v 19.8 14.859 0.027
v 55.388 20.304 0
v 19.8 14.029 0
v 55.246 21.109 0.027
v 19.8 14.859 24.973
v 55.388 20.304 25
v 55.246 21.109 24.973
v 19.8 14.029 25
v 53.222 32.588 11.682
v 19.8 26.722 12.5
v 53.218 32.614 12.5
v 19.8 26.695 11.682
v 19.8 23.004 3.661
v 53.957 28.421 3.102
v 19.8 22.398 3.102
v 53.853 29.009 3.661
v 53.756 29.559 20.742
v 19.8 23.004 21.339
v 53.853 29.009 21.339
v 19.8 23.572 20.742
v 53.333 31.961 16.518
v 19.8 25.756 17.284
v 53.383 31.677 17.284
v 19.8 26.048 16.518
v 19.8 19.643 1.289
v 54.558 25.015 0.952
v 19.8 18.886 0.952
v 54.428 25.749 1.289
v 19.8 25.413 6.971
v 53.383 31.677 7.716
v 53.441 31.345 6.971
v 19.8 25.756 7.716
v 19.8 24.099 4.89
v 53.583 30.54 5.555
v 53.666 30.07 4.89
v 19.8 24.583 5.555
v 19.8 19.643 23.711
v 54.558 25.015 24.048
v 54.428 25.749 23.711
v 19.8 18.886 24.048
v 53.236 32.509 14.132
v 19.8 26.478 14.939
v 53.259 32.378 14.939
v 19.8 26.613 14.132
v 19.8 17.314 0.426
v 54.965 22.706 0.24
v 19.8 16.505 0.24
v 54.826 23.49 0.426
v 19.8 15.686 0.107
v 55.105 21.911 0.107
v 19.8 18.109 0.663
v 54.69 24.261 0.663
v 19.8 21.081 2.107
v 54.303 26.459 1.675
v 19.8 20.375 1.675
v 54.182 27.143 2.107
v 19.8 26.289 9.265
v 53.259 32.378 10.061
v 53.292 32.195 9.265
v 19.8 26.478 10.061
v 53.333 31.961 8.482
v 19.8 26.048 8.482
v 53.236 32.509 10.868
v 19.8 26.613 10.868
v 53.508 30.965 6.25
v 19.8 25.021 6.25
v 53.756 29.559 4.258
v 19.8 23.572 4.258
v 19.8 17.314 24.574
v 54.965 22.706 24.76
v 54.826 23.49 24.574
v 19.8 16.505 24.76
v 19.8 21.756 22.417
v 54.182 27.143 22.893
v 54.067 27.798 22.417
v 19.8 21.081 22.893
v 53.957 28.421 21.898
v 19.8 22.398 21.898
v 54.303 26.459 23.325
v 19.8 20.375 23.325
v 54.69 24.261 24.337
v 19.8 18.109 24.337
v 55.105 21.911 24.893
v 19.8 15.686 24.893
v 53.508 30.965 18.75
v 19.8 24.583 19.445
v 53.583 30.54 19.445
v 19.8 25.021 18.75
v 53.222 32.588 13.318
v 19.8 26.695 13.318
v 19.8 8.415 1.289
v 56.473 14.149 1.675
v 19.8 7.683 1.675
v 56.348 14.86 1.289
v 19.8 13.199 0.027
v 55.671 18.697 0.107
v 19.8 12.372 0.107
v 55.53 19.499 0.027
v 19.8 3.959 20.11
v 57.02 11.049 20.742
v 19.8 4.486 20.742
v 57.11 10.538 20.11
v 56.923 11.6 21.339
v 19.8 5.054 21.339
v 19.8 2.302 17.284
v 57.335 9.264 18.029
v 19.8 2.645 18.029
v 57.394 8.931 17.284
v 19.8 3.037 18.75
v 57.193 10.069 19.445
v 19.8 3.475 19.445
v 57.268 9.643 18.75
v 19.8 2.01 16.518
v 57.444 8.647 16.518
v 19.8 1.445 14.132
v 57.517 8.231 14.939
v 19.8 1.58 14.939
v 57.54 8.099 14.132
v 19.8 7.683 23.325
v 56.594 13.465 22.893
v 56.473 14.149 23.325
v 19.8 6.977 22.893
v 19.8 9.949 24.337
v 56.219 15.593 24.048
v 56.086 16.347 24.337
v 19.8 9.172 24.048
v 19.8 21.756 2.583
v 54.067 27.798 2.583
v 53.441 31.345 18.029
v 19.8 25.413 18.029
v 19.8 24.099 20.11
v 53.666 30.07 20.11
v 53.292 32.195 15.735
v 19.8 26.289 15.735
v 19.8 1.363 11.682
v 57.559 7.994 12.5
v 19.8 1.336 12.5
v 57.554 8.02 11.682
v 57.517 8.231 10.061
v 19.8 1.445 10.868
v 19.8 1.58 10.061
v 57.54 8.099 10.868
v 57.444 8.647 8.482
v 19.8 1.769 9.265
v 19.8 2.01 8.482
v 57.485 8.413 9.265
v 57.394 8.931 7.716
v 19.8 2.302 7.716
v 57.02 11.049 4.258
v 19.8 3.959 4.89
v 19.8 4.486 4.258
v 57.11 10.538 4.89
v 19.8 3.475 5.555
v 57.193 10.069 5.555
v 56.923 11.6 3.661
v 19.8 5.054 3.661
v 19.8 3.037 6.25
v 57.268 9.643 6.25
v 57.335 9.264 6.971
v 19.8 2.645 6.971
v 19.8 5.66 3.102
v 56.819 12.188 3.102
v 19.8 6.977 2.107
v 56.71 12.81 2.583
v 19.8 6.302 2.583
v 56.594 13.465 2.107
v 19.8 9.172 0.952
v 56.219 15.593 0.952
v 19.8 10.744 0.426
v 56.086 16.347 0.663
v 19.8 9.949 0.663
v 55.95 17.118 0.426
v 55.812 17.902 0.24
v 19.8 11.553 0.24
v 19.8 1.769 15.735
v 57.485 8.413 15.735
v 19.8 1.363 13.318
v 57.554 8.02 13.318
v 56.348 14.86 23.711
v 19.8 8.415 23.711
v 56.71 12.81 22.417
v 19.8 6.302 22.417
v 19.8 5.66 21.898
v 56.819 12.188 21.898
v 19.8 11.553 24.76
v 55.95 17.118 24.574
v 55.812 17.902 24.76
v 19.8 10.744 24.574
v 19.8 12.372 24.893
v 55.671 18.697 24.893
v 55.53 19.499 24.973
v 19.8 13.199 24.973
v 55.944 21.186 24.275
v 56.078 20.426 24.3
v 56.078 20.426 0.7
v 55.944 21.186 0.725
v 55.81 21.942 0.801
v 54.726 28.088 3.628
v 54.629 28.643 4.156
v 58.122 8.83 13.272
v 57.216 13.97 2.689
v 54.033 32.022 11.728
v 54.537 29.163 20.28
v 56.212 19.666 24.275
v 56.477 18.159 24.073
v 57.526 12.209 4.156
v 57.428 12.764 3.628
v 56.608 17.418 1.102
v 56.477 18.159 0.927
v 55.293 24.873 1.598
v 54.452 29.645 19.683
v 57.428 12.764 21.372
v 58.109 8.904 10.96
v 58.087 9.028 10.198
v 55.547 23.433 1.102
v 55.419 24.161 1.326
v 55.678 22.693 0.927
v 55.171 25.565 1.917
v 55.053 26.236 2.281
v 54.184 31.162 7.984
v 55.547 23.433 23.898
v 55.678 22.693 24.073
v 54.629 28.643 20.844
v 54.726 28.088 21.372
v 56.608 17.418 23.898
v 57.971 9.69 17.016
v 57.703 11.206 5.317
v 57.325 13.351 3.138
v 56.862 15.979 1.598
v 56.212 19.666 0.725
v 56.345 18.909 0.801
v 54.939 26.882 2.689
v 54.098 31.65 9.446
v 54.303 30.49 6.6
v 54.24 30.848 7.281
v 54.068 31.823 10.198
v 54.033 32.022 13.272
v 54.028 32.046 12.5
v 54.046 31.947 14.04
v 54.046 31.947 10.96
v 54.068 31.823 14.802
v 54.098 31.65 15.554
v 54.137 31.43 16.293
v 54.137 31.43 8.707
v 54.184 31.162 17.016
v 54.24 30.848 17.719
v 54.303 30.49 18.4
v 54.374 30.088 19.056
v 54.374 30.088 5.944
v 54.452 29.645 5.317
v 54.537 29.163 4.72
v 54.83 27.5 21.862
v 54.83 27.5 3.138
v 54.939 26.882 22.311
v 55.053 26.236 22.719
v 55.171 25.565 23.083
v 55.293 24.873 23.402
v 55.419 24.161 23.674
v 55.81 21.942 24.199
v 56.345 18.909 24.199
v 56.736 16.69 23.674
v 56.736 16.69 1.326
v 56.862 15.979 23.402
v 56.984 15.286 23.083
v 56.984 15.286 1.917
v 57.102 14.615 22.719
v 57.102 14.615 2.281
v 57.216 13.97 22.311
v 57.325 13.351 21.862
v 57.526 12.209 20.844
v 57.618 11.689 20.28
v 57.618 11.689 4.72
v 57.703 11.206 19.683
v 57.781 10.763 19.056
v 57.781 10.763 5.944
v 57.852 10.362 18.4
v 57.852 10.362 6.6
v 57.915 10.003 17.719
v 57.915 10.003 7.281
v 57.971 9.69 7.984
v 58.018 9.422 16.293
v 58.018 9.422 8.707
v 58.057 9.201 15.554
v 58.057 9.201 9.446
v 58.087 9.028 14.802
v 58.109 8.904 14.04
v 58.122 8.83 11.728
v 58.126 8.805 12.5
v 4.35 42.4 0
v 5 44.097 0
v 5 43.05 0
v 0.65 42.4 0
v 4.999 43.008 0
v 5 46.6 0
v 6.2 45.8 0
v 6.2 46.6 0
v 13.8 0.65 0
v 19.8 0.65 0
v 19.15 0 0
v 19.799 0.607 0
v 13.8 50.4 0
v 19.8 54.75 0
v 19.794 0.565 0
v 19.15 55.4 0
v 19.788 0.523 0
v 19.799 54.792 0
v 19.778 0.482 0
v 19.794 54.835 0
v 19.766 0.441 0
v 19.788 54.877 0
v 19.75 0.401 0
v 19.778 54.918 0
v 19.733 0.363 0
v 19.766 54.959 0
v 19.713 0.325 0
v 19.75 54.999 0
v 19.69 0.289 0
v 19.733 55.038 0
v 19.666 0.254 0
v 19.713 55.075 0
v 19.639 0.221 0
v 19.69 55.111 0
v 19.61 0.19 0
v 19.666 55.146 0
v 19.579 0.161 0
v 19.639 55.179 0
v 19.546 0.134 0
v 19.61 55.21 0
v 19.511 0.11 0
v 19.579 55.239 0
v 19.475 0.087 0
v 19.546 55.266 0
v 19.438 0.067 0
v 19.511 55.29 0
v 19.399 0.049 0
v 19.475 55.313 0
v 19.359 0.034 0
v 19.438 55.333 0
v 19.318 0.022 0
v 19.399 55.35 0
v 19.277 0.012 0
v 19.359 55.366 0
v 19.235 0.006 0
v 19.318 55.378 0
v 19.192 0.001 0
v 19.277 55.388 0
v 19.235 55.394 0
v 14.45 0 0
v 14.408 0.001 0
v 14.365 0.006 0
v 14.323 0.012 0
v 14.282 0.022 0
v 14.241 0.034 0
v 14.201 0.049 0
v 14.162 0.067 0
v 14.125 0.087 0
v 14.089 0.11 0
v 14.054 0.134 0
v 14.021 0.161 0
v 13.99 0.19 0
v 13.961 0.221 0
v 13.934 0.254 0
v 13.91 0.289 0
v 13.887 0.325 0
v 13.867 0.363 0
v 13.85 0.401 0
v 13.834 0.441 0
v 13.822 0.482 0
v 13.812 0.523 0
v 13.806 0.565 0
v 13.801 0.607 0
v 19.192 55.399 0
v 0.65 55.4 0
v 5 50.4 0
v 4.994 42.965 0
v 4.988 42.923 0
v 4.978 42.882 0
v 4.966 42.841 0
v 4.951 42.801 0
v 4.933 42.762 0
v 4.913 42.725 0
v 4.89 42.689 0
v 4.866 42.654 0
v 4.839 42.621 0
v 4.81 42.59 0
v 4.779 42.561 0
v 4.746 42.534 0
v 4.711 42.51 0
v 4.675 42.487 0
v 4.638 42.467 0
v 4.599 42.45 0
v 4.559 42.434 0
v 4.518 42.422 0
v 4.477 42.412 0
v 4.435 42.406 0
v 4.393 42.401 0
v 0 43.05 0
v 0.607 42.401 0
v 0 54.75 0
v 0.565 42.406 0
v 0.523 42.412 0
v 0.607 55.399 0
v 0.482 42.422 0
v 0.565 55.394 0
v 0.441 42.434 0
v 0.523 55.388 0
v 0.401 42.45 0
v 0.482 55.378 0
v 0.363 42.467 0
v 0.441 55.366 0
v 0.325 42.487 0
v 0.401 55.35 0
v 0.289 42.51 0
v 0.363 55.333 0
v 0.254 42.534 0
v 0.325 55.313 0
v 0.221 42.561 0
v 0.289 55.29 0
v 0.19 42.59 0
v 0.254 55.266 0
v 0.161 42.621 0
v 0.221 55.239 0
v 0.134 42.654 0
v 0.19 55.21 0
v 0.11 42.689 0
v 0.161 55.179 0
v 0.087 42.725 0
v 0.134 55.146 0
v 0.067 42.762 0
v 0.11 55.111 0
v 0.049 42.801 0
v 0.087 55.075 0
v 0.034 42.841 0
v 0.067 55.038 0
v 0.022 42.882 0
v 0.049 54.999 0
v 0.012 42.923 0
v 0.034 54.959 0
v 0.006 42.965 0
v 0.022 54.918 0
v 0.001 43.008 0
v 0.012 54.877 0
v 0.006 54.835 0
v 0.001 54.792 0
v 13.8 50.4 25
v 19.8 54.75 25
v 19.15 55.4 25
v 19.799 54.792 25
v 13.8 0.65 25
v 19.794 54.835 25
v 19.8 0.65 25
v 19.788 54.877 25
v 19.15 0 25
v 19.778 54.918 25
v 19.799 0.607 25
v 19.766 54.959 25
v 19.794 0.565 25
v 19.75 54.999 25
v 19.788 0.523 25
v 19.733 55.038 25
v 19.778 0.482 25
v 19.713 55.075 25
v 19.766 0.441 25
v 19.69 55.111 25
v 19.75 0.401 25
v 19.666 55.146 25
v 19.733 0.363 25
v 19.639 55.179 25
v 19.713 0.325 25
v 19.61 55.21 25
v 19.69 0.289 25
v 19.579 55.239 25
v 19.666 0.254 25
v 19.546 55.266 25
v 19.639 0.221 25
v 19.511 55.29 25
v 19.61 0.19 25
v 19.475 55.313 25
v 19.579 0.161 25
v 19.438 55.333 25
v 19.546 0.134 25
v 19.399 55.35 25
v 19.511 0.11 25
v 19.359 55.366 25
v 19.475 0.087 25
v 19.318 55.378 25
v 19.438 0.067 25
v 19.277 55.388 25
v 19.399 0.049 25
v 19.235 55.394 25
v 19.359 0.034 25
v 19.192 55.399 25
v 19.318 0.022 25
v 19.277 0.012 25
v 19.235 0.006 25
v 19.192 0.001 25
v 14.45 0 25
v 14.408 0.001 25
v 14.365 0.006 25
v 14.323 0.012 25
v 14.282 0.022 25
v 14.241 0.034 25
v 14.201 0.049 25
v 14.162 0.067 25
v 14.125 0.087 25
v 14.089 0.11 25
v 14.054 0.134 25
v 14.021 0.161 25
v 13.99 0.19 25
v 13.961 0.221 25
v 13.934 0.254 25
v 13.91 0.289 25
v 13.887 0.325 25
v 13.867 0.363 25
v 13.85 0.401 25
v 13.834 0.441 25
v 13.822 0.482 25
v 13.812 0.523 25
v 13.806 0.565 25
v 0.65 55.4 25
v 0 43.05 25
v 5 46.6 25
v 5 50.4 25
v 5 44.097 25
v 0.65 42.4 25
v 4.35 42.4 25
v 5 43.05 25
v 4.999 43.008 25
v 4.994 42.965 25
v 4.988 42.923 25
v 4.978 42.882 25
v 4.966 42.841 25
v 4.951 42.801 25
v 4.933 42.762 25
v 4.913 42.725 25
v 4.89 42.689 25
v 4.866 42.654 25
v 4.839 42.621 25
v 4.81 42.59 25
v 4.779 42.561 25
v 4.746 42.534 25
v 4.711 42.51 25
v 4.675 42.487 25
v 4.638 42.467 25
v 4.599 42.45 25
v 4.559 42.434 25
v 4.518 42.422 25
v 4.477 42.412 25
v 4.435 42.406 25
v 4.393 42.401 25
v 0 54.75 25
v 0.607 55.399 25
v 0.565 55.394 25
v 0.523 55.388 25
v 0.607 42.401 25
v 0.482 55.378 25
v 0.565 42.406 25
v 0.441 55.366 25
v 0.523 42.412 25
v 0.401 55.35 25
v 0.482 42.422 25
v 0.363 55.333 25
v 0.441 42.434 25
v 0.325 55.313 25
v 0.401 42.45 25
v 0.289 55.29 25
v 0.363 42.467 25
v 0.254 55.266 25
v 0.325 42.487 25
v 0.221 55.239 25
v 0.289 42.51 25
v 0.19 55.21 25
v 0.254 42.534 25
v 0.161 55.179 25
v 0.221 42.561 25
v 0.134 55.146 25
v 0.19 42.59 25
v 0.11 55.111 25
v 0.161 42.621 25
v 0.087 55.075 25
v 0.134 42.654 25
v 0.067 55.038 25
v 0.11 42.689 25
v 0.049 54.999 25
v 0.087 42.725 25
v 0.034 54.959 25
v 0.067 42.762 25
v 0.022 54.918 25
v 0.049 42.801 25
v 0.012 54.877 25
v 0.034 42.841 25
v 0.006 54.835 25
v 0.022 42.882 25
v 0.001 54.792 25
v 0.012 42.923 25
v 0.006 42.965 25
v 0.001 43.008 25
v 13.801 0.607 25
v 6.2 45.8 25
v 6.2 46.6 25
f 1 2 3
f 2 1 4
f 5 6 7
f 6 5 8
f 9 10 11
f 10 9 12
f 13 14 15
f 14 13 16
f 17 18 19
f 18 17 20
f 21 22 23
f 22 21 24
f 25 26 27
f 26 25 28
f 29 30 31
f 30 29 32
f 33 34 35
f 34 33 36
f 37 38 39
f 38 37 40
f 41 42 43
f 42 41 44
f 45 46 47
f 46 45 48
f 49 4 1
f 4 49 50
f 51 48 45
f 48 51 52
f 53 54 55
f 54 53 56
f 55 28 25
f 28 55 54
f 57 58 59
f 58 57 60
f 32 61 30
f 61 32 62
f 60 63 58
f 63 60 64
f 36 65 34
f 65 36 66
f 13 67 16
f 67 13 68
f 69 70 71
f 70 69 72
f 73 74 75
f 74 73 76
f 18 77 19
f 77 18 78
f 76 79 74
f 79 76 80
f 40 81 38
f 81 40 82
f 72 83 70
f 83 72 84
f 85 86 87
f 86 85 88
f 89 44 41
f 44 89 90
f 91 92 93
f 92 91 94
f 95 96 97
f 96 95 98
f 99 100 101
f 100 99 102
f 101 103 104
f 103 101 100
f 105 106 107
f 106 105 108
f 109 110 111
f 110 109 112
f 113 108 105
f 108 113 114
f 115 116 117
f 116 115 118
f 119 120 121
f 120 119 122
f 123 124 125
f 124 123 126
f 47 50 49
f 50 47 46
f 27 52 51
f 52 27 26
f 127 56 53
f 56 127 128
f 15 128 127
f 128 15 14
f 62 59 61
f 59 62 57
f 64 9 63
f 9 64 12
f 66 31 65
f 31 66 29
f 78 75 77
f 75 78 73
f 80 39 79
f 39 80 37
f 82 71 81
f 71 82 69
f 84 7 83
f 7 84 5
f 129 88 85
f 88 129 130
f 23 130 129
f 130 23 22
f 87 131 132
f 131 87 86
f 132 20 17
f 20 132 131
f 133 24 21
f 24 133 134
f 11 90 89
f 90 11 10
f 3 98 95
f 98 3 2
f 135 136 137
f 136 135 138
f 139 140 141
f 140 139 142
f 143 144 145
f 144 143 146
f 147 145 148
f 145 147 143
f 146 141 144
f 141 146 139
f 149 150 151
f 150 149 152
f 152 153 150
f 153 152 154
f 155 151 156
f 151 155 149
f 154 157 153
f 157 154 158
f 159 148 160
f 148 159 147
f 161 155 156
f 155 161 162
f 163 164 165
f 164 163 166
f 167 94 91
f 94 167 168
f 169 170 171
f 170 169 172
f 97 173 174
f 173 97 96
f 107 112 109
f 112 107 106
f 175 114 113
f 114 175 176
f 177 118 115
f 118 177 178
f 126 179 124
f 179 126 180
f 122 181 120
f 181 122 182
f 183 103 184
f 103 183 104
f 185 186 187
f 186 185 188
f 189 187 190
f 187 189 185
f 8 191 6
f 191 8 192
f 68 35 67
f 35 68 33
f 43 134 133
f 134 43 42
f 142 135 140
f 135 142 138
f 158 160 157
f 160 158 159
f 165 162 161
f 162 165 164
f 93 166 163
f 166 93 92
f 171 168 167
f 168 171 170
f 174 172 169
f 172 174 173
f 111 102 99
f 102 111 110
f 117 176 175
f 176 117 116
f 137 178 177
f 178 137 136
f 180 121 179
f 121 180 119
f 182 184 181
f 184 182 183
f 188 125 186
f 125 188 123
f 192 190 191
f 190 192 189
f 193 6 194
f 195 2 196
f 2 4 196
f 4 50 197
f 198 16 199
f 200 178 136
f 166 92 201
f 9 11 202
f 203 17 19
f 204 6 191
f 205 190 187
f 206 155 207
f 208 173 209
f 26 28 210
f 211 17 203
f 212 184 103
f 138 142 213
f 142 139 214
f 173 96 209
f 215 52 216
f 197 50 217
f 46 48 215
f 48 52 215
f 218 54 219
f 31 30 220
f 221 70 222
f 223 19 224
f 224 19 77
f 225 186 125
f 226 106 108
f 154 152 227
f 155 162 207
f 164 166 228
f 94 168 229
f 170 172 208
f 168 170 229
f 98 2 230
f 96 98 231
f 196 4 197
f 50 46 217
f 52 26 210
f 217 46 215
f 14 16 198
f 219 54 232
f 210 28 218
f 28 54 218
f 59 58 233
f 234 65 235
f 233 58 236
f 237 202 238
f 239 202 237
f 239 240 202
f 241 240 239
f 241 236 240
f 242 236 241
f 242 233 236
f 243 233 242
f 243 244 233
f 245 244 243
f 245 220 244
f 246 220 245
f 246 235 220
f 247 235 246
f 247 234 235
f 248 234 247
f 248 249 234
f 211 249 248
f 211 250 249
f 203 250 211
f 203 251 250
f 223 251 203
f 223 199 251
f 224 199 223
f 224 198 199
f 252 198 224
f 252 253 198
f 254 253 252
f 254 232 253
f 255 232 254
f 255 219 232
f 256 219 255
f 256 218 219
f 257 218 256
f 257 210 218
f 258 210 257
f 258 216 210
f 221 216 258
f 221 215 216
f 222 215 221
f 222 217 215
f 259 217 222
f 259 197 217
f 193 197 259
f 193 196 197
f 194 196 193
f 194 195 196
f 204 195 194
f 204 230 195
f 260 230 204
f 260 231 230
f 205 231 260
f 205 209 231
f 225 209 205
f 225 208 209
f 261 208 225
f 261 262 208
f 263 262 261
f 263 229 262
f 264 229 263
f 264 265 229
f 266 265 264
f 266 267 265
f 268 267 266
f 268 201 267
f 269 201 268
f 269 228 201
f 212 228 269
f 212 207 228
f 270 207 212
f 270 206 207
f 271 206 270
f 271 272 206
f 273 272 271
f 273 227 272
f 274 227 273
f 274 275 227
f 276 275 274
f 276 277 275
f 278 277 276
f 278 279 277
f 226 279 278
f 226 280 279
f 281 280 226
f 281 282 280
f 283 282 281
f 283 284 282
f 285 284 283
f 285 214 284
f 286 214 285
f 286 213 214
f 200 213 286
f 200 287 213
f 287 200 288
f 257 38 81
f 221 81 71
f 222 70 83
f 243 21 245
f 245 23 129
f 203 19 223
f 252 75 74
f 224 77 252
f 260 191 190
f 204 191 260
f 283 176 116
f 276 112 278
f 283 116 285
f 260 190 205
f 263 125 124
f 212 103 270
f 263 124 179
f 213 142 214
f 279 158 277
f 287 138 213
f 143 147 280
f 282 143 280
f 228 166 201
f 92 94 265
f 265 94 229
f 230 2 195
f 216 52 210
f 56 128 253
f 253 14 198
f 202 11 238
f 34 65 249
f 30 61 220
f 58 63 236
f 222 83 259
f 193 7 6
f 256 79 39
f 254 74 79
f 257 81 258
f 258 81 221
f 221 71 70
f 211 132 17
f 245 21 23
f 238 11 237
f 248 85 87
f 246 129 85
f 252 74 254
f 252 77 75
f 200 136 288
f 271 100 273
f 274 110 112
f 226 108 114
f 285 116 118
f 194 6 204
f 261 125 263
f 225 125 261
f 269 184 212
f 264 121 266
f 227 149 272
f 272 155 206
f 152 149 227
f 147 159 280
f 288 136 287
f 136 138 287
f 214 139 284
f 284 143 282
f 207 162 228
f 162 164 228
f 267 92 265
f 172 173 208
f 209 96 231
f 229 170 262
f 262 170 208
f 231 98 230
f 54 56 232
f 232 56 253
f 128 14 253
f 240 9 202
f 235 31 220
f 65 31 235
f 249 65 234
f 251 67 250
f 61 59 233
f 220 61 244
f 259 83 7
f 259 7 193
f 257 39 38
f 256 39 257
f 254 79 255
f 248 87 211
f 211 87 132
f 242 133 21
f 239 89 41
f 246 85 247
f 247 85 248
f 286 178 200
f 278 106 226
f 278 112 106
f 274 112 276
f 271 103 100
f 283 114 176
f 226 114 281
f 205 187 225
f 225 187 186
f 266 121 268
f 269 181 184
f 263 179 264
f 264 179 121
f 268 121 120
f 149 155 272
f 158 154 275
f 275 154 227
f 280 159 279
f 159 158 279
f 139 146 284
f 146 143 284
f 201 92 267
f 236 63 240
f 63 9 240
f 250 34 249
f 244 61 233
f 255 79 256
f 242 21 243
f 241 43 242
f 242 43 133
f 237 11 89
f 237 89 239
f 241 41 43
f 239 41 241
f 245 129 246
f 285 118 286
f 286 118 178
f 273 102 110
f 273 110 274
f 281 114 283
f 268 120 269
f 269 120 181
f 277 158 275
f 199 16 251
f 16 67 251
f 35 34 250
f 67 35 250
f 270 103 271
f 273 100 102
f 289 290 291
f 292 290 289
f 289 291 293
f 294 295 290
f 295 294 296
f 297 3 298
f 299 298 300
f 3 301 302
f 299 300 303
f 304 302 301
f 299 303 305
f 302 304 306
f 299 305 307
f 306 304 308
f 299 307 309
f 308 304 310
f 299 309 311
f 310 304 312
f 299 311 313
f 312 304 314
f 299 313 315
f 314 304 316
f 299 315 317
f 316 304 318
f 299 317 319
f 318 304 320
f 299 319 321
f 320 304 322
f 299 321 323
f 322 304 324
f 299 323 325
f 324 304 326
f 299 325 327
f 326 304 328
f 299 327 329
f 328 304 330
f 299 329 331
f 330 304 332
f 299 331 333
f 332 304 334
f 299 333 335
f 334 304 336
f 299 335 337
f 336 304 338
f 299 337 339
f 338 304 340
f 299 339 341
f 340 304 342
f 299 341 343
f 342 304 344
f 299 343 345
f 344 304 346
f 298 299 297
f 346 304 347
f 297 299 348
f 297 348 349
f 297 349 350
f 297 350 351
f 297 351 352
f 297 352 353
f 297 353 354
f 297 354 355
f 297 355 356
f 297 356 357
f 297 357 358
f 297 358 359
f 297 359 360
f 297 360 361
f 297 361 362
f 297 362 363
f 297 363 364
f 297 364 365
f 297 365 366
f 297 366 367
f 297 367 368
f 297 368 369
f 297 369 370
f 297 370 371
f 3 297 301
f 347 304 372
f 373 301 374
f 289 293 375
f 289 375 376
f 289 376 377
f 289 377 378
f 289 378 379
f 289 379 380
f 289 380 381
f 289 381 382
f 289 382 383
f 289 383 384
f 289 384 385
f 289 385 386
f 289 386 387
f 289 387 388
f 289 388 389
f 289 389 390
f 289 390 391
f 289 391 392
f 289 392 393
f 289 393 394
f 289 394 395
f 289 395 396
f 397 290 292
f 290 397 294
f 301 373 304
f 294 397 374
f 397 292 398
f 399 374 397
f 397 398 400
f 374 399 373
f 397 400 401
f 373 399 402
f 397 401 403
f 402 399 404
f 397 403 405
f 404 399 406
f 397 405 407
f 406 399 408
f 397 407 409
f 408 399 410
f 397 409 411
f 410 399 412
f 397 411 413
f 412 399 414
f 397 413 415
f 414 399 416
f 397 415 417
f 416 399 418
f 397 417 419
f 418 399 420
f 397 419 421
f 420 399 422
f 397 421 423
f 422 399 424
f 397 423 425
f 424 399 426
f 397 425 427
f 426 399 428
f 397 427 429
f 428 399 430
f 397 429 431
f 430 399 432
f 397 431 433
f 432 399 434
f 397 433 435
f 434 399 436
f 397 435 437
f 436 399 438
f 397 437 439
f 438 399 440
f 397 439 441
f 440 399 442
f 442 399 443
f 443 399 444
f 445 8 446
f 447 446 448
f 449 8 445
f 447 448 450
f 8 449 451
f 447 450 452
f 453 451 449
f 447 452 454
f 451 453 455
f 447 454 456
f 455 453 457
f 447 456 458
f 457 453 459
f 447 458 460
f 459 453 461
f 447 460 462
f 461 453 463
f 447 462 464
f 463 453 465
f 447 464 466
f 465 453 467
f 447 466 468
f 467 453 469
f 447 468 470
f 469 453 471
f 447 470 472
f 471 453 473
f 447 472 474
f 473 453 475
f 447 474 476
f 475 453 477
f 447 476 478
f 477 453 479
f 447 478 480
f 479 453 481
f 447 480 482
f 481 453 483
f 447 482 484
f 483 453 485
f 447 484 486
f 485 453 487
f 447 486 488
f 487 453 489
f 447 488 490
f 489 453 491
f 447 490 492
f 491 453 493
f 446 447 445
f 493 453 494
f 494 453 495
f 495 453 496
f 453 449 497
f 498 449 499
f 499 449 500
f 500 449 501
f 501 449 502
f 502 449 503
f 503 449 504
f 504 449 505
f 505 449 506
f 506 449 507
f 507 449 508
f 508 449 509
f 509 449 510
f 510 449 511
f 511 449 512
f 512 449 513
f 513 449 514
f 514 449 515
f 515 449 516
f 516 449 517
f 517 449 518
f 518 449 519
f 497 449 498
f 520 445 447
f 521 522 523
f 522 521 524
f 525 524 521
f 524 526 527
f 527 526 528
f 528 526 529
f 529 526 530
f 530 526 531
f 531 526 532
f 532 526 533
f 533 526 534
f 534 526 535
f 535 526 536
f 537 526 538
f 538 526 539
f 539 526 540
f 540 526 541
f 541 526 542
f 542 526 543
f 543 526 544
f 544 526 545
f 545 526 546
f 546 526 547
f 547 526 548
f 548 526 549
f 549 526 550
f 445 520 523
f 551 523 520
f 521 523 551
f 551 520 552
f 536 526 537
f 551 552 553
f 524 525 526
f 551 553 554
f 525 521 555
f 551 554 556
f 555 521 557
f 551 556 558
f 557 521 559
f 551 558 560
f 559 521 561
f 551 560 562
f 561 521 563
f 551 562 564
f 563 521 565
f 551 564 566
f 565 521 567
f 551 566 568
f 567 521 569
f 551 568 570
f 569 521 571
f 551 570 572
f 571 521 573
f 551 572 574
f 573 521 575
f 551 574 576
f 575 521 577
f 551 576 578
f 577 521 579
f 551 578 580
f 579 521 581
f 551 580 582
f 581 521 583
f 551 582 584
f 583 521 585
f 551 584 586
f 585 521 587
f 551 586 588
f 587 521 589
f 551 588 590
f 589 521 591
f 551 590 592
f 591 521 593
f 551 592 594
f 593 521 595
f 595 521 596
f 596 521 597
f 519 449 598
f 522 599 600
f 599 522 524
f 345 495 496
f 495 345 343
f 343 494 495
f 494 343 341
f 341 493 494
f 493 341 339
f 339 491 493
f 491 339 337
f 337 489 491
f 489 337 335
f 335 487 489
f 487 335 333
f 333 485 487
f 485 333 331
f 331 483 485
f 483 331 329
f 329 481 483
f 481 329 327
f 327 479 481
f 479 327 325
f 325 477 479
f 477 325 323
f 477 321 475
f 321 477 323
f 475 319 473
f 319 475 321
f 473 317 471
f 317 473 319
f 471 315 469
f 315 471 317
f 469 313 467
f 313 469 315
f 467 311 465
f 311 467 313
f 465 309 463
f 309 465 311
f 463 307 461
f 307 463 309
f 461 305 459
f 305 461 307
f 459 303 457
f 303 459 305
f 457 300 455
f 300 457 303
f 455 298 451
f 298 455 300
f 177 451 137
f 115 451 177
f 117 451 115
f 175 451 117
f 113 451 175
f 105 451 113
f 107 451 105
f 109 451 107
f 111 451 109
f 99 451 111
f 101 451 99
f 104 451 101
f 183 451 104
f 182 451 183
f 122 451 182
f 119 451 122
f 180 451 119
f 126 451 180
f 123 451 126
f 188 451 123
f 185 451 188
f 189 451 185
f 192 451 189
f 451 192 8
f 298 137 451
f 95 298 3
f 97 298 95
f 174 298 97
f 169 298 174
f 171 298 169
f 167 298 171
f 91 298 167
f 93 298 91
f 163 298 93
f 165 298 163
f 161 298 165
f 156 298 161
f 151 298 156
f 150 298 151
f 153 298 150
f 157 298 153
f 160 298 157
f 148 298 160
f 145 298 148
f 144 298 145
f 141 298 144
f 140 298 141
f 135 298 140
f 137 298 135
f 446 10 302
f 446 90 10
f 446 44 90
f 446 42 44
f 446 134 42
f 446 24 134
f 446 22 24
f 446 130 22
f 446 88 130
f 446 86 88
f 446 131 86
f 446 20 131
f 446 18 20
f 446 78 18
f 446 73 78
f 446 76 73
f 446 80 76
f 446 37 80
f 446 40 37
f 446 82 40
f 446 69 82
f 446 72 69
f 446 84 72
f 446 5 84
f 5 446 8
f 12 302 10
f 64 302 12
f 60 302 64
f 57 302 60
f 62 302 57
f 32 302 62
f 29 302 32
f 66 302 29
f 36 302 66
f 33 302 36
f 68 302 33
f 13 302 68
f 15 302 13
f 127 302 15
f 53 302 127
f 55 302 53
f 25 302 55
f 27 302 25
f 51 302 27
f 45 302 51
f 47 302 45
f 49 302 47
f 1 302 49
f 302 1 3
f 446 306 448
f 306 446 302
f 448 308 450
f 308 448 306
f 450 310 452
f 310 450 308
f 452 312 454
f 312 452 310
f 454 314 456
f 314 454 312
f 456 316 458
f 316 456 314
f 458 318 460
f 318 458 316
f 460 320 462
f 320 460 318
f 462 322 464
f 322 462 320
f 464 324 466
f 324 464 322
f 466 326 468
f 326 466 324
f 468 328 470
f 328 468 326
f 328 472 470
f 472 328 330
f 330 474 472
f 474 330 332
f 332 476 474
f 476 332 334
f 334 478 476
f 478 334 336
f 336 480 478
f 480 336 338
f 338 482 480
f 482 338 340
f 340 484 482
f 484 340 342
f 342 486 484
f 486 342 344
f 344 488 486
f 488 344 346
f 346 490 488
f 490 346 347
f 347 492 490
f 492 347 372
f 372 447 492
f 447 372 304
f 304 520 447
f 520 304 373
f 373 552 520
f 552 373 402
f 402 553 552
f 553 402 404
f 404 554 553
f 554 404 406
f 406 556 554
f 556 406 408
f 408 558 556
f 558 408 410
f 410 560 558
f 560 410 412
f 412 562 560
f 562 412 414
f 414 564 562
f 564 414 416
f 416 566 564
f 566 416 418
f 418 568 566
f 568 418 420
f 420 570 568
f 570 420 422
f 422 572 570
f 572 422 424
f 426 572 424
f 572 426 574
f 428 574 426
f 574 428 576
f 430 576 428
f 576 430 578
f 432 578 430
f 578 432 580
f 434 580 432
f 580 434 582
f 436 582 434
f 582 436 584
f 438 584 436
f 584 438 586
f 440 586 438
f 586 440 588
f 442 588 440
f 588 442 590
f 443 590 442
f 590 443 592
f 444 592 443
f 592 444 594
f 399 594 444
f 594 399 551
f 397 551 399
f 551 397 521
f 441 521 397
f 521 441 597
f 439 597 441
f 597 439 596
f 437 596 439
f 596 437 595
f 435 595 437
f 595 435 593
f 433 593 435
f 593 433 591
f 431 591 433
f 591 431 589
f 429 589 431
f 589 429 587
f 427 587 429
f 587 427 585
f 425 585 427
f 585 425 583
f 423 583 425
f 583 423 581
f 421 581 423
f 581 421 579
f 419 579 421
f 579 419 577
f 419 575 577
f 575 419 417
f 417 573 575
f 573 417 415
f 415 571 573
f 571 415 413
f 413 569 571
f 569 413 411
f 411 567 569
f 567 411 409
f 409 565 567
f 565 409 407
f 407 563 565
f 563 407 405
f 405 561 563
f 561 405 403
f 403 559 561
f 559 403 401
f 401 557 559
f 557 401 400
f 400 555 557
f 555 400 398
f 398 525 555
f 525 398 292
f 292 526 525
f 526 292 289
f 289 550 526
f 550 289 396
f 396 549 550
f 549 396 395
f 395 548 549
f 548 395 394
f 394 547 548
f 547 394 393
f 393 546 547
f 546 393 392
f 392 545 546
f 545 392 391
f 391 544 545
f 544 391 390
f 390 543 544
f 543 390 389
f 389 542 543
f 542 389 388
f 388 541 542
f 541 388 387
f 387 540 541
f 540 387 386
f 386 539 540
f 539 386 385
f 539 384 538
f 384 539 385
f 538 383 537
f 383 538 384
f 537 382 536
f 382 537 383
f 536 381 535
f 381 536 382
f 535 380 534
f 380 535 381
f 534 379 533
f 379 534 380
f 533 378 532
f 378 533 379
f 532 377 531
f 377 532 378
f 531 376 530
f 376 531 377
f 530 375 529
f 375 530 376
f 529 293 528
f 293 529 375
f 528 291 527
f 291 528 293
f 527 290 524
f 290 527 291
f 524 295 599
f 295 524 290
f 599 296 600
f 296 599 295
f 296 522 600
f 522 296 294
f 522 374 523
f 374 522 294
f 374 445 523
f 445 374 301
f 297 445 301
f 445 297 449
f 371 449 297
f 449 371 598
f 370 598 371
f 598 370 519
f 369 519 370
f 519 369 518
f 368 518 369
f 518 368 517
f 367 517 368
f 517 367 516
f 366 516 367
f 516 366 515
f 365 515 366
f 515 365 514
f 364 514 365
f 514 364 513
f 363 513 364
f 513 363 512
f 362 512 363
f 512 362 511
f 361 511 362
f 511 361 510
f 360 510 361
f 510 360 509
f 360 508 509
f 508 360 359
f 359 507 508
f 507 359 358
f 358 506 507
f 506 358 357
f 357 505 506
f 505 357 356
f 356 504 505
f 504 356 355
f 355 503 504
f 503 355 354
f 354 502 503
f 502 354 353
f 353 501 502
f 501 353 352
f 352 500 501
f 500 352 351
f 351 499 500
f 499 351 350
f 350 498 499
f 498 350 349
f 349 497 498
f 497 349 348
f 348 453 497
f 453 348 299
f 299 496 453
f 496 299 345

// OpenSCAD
// V6: perno pieno diametro 25 mm, asse a +10 gradi verso l'alto.
// Sezione incastro e dente V4; larghezza aumentata a 25 mm. Unita mm.
altezza_profilo=50;
apertura_profilo=44;
profondita_bordo=8;
gioco=0.4;
dorso=6;
ponte=5;
ritorno=5;
lunghezza_ritorno=8;
dente=1.2;
quota_sotto_bordo=47;
luce_dente=0.4;
diametro_perno=25;
larghezza=diametro_perno; // stessa larghezza del cilindro
inclinazione=10; // positiva verso alto, rispetto all'orizzontale in uso
sporgenza_base_v5=35;
allungamento=10; // lungo asse perno
smusso_punta=0.7;
$fn=96;
a=gioco; b=a+dorso; c=-profondita_bordo-gioco; d=c-ritorno;
h=altezza_profilo+gioco;
r=diametro_perno/2;
radice_x=b-3;
radice_y=r+1;
lunghezza_base_v5=(sporgenza_base_v5-radice_x-r*sin(inclinazione))/cos(inclinazione);
lunghezza_perno=lunghezza_base_v5+allungamento;
sporgenza=sporgenza_base_v5+allungamento*cos(inclinazione);
assert(inclinazione>0 && inclinazione<45);
assert(lunghezza_perno>smusso_punta);
module aggancio(){
 offset(r=0.65) offset(delta=-0.65) polygon([[a,0],[a,h],[c,h],[c,h-lunghezza_ritorno],[d,h-lunghezza_ritorno],[d,h+ponte],[b,h+ponte],[b,0]]);
 // Dente rivolto verso la faccia esterna: si porta sotto la piega interna.
 translate([c-0.35,0]) polygon([[0,quota_sotto_bordo-luce_dente-3],[dente+0.35,quota_sotto_bordo-luce_dente-0.8],[dente+0.35,quota_sotto_bordo-luce_dente],[0,quota_sotto_bordo-luce_dente]]);
}

module perno(){
 // Asse locale Z trasformato nel vettore [cos(angolo),sin(angolo),0].
 translate([radice_x,radice_y,larghezza/2])
 rotate([0,0,inclinazione]) rotate([0,90,0]) union(){
 cylinder(h=lunghezza_perno-smusso_punta,r=r);
 translate([0,0,lunghezza_perno-smusso_punta]) cylinder(h=smusso_punta,r1=r,r2=r-smusso_punta);
 }
}
// Posizione di stampa sul fianco: aggancio sul piatto, supporti sotto superfici curve del perno.
translate([-d,0,max(0,r-larghezza/2)]) union(){
 linear_extrude(height=larghezza,convexity=10) aggancio();
 perno();
}
echo(diametro=diametro_perno,angolo=inclinazione,lunghezza_assiale=lunghezza_perno);
